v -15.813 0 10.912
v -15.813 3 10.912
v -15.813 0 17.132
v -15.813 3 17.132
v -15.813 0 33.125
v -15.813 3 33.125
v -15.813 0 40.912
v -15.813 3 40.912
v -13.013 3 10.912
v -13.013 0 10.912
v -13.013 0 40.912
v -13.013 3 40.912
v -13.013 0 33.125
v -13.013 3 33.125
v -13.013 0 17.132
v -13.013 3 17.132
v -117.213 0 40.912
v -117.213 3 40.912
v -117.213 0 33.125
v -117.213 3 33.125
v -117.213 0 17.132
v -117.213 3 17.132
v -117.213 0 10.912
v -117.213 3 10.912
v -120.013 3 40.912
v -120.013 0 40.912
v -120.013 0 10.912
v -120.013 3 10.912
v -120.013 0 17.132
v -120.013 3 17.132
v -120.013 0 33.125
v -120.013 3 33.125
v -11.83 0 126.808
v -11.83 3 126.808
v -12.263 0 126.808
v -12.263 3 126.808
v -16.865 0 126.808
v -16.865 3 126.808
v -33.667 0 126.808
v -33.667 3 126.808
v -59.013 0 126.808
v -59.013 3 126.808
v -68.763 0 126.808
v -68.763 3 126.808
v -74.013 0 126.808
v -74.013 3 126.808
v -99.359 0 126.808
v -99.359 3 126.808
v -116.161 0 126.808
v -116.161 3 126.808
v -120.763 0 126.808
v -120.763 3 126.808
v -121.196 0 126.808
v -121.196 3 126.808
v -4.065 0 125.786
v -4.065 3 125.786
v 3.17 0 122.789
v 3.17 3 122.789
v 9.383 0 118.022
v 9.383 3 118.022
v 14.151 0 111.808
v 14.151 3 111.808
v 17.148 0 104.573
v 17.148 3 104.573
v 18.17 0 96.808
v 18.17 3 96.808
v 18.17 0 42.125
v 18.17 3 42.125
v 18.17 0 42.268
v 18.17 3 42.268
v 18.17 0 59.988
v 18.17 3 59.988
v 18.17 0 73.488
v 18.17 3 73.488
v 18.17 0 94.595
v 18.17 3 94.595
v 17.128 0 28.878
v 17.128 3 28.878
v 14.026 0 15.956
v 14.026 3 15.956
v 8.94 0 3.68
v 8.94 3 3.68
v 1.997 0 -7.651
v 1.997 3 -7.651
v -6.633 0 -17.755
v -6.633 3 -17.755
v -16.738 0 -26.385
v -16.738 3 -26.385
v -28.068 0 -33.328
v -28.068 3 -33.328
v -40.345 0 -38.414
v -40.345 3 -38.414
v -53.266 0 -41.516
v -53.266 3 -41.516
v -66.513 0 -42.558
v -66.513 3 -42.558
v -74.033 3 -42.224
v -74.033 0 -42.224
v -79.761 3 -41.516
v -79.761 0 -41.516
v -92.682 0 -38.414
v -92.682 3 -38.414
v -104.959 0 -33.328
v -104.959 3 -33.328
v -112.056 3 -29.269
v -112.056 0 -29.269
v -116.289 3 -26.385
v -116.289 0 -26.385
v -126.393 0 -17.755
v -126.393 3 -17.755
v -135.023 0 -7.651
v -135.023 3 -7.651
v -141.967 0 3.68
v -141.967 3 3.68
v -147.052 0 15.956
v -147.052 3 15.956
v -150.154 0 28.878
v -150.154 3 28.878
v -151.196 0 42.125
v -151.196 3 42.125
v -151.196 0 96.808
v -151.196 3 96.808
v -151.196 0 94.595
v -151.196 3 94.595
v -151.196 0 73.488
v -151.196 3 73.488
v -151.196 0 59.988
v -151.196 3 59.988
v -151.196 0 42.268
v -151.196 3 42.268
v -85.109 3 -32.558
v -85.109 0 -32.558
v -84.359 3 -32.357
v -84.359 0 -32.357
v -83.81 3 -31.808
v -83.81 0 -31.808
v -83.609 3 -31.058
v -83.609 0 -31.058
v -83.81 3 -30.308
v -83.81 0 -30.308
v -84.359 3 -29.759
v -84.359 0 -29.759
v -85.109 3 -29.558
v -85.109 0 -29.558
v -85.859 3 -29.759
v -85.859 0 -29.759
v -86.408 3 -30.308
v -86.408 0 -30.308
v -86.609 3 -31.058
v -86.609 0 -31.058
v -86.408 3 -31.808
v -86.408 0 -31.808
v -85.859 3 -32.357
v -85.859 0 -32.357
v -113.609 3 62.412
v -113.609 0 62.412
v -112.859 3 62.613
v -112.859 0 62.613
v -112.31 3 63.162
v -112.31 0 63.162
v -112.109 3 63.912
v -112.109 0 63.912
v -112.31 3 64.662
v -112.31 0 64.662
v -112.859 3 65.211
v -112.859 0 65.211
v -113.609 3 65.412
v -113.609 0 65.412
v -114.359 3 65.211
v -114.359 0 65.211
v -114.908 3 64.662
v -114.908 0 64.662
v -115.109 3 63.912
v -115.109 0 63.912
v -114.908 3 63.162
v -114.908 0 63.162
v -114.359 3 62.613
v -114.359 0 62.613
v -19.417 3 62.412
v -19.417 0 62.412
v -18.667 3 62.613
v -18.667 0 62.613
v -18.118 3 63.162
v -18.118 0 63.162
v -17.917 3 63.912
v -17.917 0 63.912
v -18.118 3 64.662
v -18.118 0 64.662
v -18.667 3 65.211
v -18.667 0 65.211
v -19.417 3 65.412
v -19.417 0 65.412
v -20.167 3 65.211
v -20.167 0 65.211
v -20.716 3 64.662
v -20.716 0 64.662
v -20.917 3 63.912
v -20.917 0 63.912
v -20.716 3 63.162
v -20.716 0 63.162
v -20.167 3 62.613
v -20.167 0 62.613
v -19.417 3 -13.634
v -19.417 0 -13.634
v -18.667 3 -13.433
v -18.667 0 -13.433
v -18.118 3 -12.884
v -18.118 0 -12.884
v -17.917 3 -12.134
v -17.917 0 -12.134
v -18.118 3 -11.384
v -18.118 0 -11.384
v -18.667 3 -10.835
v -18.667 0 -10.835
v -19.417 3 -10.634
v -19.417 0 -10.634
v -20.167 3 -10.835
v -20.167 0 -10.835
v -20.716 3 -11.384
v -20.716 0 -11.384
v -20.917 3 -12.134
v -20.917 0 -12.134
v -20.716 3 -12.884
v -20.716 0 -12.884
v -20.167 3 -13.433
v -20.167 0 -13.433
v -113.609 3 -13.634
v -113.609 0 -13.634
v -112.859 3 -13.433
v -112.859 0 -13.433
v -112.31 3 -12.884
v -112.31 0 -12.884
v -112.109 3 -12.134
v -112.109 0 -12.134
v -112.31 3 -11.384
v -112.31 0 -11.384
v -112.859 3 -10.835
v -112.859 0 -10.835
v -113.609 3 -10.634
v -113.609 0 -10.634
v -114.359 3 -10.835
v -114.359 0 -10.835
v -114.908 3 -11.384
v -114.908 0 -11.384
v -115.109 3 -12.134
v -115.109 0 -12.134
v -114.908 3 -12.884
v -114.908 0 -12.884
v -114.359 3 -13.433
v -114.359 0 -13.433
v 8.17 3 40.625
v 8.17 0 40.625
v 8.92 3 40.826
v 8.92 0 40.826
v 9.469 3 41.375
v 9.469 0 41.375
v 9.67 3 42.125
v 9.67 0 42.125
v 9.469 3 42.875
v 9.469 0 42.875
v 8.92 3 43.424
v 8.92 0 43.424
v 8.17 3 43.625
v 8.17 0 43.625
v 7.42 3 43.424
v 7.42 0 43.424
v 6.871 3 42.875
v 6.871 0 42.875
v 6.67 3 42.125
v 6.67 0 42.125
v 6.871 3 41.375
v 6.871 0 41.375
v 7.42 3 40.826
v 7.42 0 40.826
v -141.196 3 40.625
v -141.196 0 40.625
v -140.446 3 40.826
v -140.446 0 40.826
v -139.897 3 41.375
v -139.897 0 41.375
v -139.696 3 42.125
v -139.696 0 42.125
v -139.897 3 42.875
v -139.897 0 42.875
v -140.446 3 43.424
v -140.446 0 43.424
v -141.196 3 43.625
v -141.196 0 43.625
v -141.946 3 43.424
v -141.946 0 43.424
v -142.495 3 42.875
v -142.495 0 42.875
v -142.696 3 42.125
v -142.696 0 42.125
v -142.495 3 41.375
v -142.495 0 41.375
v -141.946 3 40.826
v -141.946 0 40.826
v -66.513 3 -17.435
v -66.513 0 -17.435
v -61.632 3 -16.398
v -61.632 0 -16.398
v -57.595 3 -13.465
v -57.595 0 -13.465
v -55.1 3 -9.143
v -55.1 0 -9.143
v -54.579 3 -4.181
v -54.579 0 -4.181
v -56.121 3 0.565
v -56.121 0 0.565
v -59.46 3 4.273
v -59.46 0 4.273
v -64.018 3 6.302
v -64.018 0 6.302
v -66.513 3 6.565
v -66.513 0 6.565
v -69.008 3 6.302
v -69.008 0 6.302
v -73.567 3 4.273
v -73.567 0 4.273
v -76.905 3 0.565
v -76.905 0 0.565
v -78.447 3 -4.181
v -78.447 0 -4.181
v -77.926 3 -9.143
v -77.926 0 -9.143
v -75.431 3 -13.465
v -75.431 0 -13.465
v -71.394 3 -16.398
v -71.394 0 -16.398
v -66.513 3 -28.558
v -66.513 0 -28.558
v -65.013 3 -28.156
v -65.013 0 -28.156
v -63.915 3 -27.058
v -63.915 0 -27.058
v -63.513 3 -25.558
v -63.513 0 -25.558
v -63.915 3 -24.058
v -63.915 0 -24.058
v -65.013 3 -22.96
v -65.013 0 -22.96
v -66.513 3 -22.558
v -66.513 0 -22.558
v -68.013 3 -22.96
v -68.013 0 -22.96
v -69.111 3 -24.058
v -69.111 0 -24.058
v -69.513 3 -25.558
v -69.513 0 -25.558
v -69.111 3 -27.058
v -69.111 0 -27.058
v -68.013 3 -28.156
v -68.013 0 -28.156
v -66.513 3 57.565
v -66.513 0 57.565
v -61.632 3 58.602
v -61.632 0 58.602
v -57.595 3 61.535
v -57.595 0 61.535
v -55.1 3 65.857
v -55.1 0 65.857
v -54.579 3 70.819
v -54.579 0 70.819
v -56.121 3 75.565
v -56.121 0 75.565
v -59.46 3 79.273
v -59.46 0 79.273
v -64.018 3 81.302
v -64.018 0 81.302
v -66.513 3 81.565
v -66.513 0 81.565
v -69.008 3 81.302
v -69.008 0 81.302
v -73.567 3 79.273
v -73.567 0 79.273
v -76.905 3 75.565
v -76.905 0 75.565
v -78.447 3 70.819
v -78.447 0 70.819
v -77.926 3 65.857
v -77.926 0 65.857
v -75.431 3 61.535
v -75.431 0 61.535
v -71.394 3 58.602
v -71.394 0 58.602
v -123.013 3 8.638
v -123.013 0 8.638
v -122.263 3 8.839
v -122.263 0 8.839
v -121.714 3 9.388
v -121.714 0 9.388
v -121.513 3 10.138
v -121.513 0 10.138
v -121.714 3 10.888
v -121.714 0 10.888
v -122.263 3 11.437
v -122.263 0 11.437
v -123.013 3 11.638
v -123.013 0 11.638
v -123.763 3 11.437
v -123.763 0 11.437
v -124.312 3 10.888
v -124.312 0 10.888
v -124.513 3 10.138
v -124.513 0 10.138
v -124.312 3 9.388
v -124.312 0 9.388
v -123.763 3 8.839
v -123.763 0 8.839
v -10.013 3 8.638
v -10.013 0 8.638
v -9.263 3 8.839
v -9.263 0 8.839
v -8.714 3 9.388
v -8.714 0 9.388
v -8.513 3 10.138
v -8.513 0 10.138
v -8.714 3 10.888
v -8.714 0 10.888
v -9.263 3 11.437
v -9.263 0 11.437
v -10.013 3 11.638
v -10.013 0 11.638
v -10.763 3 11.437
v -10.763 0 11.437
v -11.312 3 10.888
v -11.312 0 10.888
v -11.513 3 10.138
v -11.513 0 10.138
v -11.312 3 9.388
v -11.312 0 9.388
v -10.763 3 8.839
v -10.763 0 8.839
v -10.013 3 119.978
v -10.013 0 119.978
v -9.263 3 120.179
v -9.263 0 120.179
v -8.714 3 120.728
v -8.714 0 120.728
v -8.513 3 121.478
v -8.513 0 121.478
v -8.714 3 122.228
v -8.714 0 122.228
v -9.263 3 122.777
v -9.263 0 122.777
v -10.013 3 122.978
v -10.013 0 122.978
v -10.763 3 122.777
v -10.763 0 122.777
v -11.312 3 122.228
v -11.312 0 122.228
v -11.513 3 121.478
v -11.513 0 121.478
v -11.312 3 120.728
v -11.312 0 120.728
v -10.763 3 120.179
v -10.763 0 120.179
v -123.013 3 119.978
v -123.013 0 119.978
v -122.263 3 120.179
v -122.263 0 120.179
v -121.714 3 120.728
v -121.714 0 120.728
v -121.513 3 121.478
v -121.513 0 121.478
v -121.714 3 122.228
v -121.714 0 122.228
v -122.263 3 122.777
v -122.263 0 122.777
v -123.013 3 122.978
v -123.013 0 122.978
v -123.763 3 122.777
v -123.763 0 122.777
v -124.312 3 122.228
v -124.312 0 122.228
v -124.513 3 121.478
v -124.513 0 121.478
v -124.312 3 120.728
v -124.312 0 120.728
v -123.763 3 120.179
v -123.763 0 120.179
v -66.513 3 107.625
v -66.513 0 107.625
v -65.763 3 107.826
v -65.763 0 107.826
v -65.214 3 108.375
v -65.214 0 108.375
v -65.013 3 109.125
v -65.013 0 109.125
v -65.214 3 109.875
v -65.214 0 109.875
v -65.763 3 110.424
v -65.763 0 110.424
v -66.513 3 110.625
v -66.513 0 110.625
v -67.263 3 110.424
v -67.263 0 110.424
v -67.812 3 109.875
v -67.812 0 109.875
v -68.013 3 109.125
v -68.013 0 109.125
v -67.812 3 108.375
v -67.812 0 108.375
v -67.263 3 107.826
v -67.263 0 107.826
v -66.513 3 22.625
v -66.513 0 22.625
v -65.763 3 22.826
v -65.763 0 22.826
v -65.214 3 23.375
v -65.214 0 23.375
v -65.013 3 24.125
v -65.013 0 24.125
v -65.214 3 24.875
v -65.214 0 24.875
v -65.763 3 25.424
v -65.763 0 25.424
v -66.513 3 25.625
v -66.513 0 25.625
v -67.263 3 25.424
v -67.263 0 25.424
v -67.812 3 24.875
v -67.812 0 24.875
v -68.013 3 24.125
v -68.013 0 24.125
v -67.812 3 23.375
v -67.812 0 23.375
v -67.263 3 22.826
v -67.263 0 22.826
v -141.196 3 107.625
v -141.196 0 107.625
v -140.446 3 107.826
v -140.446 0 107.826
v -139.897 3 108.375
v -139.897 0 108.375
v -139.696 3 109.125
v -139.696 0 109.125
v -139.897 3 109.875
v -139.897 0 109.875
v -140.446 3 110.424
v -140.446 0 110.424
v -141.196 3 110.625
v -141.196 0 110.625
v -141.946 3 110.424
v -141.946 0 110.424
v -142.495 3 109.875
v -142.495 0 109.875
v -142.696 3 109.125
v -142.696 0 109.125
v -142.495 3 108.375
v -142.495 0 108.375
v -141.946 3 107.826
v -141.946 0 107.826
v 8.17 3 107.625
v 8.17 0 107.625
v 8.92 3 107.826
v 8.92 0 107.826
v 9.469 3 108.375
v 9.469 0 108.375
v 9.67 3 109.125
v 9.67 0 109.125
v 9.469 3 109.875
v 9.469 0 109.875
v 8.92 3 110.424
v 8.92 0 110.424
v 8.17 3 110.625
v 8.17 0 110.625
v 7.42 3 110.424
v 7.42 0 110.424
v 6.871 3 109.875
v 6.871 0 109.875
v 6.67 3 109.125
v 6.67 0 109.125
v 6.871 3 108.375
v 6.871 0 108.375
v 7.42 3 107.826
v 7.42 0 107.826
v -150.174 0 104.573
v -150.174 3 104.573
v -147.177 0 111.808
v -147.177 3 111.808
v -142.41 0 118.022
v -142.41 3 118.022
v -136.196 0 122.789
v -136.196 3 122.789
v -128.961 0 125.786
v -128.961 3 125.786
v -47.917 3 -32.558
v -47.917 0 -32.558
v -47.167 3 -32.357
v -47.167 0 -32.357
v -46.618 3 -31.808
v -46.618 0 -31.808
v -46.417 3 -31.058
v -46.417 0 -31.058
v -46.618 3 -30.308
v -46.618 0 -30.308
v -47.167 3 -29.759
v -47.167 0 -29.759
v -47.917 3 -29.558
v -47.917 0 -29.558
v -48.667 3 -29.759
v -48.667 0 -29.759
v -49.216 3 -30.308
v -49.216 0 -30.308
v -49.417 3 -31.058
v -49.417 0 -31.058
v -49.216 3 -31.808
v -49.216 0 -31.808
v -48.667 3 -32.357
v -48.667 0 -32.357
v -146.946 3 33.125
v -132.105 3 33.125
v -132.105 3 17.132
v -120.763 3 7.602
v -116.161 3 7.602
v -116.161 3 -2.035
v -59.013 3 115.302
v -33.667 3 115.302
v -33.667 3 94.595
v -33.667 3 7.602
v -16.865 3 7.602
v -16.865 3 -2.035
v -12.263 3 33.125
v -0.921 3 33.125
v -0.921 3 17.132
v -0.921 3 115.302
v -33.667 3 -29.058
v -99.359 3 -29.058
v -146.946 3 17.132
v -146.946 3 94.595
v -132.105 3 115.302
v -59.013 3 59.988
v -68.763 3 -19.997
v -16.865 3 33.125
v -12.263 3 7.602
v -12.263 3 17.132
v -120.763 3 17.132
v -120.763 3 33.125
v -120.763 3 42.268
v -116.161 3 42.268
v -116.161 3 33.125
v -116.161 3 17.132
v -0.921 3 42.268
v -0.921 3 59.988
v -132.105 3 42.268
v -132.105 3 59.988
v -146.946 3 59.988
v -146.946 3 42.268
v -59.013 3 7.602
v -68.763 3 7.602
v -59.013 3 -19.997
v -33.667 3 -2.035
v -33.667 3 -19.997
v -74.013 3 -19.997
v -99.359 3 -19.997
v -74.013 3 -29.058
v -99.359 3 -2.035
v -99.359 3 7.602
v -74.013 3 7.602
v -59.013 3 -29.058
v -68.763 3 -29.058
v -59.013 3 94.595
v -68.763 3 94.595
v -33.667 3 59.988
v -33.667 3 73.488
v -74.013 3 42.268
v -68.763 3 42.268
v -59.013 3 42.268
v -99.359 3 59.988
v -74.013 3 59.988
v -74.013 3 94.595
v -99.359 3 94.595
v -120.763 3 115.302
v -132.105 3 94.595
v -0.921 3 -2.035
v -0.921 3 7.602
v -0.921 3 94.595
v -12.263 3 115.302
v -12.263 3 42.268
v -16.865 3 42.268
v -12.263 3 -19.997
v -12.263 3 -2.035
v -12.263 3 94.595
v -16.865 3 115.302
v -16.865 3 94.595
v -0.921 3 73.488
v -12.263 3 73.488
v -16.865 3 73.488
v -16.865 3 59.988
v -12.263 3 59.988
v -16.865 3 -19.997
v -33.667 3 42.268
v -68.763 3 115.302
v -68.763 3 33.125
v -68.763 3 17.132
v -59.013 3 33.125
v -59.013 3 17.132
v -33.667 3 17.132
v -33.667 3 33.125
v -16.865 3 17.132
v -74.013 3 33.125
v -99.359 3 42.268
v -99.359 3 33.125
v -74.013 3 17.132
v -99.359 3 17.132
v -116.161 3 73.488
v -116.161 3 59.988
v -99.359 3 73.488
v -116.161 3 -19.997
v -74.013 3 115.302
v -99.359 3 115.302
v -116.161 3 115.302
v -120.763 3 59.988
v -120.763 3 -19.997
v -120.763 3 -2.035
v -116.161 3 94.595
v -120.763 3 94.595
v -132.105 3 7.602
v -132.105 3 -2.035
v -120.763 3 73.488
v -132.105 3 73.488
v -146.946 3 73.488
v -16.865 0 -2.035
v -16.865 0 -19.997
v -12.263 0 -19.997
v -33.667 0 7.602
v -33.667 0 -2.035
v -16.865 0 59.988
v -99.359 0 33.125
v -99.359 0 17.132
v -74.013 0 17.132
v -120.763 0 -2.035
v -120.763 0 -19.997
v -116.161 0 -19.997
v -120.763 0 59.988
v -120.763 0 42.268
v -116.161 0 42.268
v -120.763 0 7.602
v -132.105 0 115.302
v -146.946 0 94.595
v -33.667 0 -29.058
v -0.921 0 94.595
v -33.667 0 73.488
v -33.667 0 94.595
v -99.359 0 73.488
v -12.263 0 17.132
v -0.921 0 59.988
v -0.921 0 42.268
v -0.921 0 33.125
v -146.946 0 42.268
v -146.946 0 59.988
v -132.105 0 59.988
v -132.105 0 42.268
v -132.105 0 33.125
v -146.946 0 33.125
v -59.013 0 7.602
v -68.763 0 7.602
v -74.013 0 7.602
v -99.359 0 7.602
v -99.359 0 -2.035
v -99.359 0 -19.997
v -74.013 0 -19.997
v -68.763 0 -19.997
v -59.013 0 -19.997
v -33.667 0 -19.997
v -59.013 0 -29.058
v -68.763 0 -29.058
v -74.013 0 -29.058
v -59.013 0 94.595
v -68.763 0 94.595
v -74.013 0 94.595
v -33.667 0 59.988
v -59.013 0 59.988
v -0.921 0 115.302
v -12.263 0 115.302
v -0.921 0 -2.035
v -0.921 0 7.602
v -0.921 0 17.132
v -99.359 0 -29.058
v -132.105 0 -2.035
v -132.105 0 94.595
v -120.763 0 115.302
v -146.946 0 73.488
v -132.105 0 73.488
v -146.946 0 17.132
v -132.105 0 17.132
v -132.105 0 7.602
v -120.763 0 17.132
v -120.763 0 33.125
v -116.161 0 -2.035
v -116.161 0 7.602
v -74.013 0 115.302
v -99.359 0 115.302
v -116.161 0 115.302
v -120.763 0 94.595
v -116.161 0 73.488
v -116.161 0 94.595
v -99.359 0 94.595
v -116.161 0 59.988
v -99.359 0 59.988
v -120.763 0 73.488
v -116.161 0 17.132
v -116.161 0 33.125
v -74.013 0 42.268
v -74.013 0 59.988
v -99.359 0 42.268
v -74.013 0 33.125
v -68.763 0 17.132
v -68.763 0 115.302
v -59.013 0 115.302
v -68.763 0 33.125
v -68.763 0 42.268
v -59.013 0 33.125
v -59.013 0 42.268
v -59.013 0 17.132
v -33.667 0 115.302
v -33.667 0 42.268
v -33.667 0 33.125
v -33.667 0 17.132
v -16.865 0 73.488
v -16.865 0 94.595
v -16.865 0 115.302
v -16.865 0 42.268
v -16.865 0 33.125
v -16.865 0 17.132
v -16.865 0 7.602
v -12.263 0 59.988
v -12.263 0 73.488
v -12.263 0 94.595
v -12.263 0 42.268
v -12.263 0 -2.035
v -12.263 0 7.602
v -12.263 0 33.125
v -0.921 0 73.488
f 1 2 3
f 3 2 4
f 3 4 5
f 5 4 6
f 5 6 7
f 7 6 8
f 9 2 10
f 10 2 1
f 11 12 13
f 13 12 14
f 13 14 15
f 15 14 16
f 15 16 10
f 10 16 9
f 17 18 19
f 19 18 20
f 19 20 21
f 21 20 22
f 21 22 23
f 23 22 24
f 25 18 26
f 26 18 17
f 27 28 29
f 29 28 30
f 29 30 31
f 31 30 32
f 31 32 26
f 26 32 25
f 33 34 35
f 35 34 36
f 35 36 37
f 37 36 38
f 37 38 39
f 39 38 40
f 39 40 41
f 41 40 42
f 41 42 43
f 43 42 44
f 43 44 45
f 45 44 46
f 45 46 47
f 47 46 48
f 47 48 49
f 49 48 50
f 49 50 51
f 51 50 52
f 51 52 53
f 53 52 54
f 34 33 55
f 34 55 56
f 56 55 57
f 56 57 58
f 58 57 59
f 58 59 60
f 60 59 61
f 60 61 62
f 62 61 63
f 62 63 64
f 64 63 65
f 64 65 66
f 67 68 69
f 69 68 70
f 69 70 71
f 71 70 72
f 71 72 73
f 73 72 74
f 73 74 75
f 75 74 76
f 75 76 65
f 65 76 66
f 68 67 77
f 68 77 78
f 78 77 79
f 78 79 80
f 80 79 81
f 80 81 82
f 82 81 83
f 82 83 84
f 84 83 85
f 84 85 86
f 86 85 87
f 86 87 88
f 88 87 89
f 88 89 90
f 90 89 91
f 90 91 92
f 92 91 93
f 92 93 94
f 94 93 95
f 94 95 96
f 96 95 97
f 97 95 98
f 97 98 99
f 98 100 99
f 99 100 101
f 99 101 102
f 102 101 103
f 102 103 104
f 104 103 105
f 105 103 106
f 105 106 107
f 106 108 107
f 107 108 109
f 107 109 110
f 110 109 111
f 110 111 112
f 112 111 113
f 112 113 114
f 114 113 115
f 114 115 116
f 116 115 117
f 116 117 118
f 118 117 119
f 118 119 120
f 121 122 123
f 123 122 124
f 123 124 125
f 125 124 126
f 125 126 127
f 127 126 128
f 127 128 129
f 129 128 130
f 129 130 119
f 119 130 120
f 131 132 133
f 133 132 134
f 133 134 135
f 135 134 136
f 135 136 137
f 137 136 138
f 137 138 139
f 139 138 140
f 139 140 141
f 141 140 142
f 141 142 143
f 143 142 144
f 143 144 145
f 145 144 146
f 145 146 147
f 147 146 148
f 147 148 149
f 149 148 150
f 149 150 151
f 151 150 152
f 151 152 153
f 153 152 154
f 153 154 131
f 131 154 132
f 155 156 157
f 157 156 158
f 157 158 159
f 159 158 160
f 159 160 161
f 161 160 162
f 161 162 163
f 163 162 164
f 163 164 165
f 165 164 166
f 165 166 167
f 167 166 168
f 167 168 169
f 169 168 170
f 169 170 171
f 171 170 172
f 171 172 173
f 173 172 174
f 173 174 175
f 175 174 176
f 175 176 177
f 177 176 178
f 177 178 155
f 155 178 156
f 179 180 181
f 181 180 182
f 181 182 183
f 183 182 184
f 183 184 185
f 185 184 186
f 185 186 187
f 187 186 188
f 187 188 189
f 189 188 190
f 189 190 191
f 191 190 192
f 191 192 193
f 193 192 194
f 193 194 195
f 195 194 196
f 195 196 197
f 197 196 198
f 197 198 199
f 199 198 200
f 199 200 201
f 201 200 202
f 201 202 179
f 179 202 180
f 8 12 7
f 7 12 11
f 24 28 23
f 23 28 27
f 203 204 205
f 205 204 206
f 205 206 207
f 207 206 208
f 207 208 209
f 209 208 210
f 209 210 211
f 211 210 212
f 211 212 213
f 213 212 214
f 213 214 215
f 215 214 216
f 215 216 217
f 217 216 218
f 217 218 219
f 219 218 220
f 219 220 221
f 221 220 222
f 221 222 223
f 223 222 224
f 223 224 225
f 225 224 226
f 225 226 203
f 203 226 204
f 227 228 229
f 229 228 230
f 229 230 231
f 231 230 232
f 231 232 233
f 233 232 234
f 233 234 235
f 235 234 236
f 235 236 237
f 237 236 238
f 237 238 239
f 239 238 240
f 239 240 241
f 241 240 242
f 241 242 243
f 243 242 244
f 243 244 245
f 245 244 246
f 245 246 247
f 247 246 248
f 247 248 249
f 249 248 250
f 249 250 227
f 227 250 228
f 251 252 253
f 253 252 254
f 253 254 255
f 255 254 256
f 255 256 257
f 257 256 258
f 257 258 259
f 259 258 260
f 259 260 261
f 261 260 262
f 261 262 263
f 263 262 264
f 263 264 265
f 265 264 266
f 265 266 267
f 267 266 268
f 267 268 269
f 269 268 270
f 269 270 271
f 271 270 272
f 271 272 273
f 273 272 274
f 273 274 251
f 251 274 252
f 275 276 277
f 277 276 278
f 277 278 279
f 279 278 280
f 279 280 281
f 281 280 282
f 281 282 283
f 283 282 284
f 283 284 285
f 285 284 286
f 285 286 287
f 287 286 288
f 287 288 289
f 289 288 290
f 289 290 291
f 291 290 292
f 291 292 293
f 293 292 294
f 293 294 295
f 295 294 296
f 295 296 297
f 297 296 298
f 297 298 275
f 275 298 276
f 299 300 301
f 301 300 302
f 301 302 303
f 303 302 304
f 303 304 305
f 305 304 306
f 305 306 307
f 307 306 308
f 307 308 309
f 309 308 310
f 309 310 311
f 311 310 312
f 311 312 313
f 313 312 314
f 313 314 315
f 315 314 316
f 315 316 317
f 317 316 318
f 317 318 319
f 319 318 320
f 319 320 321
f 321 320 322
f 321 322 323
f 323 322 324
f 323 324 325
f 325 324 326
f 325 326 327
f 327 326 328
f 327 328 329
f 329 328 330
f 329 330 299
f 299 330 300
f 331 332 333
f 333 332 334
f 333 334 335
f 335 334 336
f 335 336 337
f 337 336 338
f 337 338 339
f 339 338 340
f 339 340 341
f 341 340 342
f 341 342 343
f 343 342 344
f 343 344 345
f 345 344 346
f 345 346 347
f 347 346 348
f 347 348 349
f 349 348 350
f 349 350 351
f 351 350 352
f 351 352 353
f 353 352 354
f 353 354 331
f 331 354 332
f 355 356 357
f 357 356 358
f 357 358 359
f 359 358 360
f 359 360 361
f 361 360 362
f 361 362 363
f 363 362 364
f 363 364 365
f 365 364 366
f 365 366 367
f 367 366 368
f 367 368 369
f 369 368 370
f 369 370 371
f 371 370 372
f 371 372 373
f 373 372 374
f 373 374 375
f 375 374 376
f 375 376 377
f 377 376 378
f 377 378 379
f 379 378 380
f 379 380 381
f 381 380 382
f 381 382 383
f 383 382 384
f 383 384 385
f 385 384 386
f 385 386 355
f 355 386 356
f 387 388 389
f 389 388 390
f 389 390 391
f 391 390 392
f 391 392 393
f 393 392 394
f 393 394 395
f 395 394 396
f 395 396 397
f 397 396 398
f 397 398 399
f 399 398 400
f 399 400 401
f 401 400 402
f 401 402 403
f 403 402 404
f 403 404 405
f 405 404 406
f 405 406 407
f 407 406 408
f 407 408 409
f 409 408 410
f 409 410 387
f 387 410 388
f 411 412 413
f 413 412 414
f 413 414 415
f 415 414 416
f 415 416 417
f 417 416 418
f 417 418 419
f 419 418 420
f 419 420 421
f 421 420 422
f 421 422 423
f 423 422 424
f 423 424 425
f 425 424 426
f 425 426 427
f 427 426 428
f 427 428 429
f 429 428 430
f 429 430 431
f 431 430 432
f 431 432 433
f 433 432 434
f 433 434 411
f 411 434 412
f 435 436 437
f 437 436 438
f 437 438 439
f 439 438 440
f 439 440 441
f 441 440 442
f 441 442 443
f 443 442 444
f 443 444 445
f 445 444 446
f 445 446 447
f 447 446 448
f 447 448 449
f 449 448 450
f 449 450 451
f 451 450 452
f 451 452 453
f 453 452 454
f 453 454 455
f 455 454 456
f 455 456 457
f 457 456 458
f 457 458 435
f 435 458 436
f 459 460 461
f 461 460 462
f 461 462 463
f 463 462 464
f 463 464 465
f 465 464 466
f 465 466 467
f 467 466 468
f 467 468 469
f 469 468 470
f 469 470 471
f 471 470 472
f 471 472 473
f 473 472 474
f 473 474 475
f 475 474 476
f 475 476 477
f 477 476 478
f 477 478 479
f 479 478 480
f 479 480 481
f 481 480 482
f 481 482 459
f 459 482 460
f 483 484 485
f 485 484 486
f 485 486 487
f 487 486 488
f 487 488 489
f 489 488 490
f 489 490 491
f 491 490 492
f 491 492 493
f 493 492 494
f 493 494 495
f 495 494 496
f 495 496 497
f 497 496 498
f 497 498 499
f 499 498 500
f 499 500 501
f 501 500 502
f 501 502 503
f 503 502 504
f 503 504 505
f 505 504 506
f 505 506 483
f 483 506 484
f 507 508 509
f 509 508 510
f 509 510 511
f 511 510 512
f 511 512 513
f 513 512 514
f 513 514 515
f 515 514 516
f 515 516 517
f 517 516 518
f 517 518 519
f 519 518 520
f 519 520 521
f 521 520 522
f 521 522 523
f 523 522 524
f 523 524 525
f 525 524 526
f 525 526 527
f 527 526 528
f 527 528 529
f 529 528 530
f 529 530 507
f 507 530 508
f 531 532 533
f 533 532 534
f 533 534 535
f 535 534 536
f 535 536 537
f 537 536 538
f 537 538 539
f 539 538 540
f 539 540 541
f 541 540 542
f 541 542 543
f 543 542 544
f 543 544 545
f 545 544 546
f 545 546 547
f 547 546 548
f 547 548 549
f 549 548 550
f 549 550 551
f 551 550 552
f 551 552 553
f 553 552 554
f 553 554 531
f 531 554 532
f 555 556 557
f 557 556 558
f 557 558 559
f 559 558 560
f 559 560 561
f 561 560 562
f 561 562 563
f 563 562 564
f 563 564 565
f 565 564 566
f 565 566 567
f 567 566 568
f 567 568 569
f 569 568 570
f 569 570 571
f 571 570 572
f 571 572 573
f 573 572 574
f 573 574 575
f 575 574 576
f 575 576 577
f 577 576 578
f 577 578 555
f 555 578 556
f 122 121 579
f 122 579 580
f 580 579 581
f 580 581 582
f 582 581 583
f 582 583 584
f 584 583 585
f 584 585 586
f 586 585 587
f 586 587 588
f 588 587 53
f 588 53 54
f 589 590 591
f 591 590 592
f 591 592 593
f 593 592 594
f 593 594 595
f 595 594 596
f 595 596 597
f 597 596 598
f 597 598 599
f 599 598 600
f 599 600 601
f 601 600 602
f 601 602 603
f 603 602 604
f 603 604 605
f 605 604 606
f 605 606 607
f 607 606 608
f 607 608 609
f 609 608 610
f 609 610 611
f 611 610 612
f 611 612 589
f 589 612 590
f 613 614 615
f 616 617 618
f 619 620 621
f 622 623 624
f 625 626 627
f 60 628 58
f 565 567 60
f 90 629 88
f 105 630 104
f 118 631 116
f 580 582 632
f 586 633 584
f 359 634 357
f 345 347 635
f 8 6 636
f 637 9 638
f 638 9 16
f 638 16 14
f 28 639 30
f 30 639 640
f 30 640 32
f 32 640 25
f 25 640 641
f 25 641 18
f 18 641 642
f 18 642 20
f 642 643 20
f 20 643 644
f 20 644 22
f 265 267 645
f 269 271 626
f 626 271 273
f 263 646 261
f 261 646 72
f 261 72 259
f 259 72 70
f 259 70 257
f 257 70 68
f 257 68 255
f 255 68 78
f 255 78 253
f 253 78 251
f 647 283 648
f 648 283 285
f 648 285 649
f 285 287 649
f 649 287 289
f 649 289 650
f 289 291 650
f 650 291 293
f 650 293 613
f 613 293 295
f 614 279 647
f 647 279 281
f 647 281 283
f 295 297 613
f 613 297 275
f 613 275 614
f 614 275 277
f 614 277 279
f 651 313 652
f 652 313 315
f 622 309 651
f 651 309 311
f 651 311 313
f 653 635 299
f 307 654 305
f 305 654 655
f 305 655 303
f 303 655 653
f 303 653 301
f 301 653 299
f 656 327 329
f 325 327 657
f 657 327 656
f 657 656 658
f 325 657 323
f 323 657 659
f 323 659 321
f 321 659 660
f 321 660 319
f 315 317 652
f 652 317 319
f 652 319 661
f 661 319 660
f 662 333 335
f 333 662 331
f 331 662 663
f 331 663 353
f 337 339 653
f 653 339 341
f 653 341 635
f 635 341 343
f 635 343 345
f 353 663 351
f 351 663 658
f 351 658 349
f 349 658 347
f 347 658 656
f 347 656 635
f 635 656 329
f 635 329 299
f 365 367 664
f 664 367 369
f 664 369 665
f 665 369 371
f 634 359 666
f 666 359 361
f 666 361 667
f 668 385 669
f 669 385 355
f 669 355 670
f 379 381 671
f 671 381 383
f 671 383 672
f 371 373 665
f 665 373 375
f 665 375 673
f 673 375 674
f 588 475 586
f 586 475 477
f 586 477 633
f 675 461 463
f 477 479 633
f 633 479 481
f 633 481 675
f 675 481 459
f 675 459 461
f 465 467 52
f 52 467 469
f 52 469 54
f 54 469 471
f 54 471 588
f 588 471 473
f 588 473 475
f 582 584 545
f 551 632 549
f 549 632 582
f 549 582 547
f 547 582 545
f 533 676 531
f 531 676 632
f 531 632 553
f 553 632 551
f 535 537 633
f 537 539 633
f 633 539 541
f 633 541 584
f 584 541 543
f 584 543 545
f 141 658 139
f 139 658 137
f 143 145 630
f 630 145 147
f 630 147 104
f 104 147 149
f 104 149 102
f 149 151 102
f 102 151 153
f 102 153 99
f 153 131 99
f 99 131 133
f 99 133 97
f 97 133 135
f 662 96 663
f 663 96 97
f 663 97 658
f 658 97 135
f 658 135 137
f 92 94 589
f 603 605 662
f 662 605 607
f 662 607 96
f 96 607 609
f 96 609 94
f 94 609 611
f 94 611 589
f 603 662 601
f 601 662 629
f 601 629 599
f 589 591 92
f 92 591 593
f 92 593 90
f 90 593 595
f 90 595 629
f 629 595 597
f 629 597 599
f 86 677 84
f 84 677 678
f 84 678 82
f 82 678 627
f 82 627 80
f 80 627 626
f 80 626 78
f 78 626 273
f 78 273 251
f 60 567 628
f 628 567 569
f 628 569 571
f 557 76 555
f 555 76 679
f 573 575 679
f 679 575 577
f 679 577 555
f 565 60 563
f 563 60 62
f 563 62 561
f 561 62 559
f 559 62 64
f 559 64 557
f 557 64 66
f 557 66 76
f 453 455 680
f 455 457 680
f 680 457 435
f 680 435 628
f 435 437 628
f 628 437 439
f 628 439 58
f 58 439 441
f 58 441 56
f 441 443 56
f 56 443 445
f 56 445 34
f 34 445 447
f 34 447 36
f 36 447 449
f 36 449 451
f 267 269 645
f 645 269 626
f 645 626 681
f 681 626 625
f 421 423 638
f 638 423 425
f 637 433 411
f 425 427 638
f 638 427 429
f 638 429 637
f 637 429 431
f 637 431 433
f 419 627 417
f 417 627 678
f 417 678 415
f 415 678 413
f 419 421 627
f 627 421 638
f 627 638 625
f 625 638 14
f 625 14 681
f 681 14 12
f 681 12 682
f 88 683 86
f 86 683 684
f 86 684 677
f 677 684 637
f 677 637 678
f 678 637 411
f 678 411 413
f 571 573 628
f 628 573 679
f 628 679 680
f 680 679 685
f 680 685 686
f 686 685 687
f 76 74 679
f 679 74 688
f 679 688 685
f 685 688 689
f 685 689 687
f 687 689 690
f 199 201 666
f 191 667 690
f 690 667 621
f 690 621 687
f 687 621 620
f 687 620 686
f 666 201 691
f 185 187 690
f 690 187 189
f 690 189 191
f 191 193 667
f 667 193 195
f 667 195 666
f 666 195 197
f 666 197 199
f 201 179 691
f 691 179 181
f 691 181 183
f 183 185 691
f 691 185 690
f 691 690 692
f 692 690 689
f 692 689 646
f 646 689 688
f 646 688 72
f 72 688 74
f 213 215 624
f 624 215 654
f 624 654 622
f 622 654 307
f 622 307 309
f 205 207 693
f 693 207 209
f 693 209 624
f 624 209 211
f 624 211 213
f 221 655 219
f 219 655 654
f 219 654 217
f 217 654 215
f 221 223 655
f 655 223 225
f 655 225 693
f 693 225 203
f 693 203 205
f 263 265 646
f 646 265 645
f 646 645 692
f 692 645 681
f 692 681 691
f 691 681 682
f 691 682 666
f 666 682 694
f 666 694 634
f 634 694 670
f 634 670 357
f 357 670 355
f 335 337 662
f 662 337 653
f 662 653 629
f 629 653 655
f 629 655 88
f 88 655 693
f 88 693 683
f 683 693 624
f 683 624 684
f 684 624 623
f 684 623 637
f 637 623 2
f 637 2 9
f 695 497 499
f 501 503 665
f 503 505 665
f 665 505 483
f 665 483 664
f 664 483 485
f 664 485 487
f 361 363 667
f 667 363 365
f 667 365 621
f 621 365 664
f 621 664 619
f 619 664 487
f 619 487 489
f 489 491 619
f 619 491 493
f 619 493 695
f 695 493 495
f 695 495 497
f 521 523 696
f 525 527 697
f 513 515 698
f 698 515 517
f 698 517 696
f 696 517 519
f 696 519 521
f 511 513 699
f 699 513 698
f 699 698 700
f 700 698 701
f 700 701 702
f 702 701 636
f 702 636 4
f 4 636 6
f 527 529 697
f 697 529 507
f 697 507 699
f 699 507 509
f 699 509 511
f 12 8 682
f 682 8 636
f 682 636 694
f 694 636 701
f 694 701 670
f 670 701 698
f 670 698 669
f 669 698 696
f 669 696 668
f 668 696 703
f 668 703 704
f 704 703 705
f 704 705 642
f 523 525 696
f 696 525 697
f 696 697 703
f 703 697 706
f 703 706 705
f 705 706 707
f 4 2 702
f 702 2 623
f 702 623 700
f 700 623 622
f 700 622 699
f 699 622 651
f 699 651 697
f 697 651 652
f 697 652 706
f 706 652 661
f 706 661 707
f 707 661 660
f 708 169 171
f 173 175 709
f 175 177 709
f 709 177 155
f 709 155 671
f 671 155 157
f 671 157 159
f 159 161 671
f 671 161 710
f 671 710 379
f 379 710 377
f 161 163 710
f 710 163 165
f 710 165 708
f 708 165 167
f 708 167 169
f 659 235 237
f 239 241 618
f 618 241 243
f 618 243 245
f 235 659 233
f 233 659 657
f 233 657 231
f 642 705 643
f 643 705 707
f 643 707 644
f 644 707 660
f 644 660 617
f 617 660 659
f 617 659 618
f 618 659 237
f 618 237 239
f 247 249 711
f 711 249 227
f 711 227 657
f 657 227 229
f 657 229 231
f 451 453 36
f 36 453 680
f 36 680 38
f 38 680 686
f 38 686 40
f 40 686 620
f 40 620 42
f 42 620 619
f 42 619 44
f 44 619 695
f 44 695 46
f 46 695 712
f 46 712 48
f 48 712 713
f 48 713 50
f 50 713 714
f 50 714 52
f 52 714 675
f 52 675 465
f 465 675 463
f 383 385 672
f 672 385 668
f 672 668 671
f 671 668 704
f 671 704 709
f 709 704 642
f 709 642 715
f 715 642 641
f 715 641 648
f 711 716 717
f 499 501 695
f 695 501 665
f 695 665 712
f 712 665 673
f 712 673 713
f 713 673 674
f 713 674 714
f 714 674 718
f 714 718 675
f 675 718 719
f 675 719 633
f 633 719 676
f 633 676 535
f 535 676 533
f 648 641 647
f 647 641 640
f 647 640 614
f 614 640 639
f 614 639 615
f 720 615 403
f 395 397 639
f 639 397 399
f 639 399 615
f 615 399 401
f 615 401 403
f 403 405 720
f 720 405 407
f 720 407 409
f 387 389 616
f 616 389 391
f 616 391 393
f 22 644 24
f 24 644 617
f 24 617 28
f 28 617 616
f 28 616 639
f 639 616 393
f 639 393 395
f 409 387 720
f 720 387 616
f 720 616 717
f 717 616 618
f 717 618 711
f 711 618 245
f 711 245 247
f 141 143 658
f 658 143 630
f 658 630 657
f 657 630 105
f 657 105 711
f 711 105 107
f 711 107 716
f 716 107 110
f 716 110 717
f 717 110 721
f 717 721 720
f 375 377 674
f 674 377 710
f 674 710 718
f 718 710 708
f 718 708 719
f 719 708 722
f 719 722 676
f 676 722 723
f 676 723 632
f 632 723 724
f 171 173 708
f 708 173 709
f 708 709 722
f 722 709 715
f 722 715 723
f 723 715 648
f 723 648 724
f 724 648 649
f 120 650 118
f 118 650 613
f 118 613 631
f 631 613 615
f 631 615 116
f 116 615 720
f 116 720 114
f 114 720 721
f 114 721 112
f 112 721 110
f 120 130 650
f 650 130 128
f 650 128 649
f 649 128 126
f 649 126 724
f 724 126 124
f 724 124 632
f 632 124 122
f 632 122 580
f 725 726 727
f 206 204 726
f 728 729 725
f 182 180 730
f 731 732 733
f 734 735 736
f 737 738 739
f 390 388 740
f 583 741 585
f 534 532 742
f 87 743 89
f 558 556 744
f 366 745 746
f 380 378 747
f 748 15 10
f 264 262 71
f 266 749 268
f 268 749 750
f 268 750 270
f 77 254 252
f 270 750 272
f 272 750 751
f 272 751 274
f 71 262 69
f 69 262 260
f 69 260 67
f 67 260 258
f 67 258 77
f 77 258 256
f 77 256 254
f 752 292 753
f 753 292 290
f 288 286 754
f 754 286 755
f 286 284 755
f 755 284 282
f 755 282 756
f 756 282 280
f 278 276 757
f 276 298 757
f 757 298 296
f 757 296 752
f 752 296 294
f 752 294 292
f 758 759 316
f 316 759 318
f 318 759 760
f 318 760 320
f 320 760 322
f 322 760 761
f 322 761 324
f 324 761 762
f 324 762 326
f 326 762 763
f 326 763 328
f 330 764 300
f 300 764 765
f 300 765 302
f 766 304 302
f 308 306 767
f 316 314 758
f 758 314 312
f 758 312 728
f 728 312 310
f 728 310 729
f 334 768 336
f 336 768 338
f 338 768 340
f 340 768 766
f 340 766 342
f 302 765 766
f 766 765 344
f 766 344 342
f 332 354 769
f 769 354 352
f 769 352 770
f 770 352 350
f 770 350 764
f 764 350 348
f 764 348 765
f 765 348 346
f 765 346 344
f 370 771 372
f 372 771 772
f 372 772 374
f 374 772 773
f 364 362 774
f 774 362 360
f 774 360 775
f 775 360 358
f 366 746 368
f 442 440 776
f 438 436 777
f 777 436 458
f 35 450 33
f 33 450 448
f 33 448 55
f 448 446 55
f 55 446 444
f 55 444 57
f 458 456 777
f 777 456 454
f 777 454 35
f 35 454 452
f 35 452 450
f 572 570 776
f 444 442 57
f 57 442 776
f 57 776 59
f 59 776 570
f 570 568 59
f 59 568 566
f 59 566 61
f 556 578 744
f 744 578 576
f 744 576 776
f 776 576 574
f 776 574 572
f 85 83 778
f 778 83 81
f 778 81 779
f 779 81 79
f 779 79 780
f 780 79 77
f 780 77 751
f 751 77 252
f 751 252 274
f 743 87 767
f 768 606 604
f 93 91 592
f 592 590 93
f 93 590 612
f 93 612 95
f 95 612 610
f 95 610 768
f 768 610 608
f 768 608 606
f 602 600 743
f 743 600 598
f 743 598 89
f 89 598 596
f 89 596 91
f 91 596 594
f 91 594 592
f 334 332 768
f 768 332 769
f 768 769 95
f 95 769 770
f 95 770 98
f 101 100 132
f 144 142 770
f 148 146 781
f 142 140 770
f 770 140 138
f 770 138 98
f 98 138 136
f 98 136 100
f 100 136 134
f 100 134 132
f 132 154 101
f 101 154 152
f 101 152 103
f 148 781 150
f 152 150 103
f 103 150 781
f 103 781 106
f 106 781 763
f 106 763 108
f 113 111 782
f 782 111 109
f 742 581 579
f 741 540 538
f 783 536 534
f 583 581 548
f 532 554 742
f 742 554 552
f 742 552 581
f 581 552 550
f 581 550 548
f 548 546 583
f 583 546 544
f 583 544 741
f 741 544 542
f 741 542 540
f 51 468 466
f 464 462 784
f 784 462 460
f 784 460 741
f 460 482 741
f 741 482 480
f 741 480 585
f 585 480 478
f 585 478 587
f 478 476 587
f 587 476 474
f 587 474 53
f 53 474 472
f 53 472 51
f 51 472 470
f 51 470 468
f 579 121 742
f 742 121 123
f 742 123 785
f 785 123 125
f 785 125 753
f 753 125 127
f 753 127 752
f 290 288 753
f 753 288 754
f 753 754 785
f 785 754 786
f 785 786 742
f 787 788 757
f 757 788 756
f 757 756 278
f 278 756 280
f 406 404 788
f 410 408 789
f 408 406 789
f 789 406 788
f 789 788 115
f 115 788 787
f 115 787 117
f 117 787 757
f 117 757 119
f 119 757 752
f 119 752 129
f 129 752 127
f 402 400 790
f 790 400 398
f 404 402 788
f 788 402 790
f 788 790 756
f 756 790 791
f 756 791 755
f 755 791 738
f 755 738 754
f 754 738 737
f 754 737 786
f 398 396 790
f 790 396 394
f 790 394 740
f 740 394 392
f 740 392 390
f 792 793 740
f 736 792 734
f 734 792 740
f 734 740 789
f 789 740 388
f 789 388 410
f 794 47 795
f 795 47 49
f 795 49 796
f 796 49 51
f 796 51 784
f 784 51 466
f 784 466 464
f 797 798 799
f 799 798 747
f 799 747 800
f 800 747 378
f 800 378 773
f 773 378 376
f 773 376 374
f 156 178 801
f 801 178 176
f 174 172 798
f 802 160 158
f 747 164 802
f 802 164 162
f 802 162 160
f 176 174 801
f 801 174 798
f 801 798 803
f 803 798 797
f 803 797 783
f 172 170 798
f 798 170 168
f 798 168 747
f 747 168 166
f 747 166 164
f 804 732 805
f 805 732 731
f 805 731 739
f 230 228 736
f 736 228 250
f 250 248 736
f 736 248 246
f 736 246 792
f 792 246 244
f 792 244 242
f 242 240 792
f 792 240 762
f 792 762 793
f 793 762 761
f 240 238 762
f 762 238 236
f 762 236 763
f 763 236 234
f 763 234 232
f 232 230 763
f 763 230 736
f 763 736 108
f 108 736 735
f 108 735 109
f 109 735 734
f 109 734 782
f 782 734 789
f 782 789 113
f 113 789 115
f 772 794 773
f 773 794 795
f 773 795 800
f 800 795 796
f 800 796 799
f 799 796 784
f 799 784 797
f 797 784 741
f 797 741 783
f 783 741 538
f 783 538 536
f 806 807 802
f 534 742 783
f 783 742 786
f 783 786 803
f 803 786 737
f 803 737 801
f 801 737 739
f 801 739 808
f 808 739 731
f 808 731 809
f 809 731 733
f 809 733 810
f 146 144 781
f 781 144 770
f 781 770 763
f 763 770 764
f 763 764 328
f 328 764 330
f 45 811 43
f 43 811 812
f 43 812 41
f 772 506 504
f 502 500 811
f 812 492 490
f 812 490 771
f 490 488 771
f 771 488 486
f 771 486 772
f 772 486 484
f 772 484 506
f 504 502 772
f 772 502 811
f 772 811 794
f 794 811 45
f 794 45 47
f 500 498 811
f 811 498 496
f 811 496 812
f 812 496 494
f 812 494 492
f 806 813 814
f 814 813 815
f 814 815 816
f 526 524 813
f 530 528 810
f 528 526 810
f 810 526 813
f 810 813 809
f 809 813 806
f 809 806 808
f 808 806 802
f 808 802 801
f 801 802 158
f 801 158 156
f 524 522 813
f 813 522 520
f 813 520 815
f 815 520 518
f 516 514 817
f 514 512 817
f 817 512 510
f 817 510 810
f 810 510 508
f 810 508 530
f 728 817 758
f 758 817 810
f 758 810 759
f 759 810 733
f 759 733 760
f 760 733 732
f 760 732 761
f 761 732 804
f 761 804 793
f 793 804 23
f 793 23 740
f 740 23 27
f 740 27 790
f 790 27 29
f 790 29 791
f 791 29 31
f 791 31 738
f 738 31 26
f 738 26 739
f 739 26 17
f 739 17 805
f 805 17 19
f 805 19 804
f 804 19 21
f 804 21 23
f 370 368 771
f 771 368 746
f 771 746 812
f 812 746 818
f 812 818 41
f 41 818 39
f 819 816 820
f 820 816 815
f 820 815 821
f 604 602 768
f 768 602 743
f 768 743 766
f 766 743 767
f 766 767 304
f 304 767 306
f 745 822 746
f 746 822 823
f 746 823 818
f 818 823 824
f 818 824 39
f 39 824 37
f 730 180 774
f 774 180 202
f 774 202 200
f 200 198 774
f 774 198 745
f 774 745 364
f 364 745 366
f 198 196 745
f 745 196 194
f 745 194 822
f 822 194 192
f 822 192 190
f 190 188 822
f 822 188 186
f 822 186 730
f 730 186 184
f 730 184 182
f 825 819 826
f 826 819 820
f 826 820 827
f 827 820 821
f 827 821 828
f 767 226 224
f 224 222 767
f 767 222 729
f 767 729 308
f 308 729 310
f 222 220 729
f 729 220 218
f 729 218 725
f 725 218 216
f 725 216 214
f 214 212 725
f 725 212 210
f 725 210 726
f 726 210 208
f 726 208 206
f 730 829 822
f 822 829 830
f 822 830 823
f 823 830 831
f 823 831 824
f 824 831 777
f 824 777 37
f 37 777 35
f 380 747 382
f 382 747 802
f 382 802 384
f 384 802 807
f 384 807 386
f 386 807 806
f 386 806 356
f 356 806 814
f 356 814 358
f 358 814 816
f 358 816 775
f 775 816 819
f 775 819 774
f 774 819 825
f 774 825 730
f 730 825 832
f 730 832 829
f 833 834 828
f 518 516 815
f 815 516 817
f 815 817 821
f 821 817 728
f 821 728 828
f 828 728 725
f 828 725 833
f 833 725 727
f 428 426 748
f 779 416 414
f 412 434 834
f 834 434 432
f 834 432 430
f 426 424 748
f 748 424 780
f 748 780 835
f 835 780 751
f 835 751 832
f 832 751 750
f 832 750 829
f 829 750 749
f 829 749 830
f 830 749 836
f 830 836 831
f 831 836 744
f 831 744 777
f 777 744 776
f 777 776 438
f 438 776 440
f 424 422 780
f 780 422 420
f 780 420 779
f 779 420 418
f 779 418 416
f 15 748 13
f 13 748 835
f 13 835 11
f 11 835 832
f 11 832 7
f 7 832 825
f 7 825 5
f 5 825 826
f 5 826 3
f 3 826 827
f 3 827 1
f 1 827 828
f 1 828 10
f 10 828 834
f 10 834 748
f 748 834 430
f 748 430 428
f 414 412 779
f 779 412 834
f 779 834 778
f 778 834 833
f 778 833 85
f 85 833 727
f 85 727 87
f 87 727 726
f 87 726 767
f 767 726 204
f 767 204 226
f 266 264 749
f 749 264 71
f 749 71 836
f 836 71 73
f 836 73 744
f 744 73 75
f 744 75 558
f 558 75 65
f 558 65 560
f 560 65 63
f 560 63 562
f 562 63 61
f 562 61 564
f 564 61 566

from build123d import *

# Parameters (mm, degrees)
SKETCH1_R           = 1.5
SKETCH1_R_2         = 12
SKETCH1_R_3         = 3
SKETCH1_W           = 2.8
SKETCH1_H           = 30
BOSS_EXTRUDE4_DEPTH = 3


with BuildPart() as part:
    # Sketch1 → Boss-Extrude4 (new body)
    with BuildSketch(Plane(origin=(0, 0, 0), x_dir=(1, 0, 0), z_dir=(0, 1, 0))):
        with BuildLine():
            Line((-121.196449229, -126.808304592), (-11.829794241, -126.808304592))
            ThreePointArc((-11.829794241, -126.808304592), (9.383409194, -118.021508028), (18.170205759, -96.808304592))
            Line((18.170205759, -96.808304592), (18.170205759, -42.124977099))
            ThreePointArc((18.170205759, -42.124977099), (-66.513121735, 42.558350395), (-151.196449229, -42.124977099))
            Line((-151.196449229, -42.124977099), (-151.196449229, -96.808304592))
            ThreePointArc((-151.196449229, -96.808304592), (-142.409652664, -118.021508028), (-121.196449229, -126.808304592))
        make_face()
        with Locations(Location((-19.417066349, 12.133998526, 0), (0, 0, 270))):
            Circle(SKETCH1_R, mode=Mode.SUBTRACT)
        with Locations(Location((-113.609177122, 12.133998526, 0), (0, 0, 270))):
            Circle(SKETCH1_R, mode=Mode.SUBTRACT)
        with Locations(Location((8.170205759, -42.124977099, 0), (0, 0, 270))):
            Circle(SKETCH1_R, mode=Mode.SUBTRACT)
        with Locations(Location((-141.196449229, -42.124977099, 0), (0, 0, 270))):
            Circle(SKETCH1_R, mode=Mode.SUBTRACT)
        with Locations(Location((-66.513121735, 5.435278237, 0), (0, 0, 270))):
            Circle(SKETCH1_R_2, mode=Mode.SUBTRACT)
        with Locations(Location((-66.513121735, 25.558350395, 0), (0, 0, 270))):
            Circle(SKETCH1_R_3, mode=Mode.SUBTRACT)
        with Locations(Location((-66.513121735, -69.564721763, 0), (0, 0, 270))):
            Circle(SKETCH1_R_2, mode=Mode.SUBTRACT)
        with Locations(Location((-123.013121735, -10.138406212, 0), (0, 0, 270))):
            Circle(SKETCH1_R, mode=Mode.SUBTRACT)
        with Locations(Location((-10.013121735, -10.138406212, 0), (0, 0, 270))):
            Circle(SKETCH1_R, mode=Mode.SUBTRACT)
        with Locations(Location((-10.013121735, -121.478406212, 0), (0, 0, 270))):
            Circle(SKETCH1_R, mode=Mode.SUBTRACT)
        with Locations(Location((-123.013121735, -121.478406212, 0), (0, 0, 270))):
            Circle(SKETCH1_R, mode=Mode.SUBTRACT)
        with Locations(Location((-66.513121735, -109.124977099, 0), (0, 0, 270))):
            Circle(SKETCH1_R, mode=Mode.SUBTRACT)
        with Locations(Location((-66.513121735, -24.124977099, 0), (0, 0, 270))):
            Circle(SKETCH1_R, mode=Mode.SUBTRACT)
        with Locations(Location((-141.196449229, -109.124977099, 0), (0, 0, 270))):
            Circle(SKETCH1_R, mode=Mode.SUBTRACT)
        with Locations(Location((8.170205759, -109.124977099, 0), (0, 0, 270))):
            Circle(SKETCH1_R, mode=Mode.SUBTRACT)
        with Locations(Location((-19.417066349, -63.912266725, 0), (0, 0, 270))):
            Circle(SKETCH1_R, mode=Mode.SUBTRACT)
        with Locations(Location((-113.609177122, -63.912266725, 0), (0, 0, 270))):
            Circle(SKETCH1_R, mode=Mode.SUBTRACT)
        with Locations(Location((-85.109177122, 31.058350391, 0), (0, 0, 270))):
            Circle(SKETCH1_R, mode=Mode.SUBTRACT)
        with Locations(Location((-47.917066349, 31.058350391, 0), (0, 0, 270))):
            Circle(SKETCH1_R, mode=Mode.SUBTRACT)
        with Locations((-14.413121735, -25.911649605)):
            Rectangle(SKETCH1_W, SKETCH1_H, mode=Mode.SUBTRACT)
        with Locations((-118.613121735, -25.911649605)):
            Rectangle(SKETCH1_W, SKETCH1_H, mode=Mode.SUBTRACT)
    extrude(amount=BOSS_EXTRUDE4_DEPTH)


solid = part.part
